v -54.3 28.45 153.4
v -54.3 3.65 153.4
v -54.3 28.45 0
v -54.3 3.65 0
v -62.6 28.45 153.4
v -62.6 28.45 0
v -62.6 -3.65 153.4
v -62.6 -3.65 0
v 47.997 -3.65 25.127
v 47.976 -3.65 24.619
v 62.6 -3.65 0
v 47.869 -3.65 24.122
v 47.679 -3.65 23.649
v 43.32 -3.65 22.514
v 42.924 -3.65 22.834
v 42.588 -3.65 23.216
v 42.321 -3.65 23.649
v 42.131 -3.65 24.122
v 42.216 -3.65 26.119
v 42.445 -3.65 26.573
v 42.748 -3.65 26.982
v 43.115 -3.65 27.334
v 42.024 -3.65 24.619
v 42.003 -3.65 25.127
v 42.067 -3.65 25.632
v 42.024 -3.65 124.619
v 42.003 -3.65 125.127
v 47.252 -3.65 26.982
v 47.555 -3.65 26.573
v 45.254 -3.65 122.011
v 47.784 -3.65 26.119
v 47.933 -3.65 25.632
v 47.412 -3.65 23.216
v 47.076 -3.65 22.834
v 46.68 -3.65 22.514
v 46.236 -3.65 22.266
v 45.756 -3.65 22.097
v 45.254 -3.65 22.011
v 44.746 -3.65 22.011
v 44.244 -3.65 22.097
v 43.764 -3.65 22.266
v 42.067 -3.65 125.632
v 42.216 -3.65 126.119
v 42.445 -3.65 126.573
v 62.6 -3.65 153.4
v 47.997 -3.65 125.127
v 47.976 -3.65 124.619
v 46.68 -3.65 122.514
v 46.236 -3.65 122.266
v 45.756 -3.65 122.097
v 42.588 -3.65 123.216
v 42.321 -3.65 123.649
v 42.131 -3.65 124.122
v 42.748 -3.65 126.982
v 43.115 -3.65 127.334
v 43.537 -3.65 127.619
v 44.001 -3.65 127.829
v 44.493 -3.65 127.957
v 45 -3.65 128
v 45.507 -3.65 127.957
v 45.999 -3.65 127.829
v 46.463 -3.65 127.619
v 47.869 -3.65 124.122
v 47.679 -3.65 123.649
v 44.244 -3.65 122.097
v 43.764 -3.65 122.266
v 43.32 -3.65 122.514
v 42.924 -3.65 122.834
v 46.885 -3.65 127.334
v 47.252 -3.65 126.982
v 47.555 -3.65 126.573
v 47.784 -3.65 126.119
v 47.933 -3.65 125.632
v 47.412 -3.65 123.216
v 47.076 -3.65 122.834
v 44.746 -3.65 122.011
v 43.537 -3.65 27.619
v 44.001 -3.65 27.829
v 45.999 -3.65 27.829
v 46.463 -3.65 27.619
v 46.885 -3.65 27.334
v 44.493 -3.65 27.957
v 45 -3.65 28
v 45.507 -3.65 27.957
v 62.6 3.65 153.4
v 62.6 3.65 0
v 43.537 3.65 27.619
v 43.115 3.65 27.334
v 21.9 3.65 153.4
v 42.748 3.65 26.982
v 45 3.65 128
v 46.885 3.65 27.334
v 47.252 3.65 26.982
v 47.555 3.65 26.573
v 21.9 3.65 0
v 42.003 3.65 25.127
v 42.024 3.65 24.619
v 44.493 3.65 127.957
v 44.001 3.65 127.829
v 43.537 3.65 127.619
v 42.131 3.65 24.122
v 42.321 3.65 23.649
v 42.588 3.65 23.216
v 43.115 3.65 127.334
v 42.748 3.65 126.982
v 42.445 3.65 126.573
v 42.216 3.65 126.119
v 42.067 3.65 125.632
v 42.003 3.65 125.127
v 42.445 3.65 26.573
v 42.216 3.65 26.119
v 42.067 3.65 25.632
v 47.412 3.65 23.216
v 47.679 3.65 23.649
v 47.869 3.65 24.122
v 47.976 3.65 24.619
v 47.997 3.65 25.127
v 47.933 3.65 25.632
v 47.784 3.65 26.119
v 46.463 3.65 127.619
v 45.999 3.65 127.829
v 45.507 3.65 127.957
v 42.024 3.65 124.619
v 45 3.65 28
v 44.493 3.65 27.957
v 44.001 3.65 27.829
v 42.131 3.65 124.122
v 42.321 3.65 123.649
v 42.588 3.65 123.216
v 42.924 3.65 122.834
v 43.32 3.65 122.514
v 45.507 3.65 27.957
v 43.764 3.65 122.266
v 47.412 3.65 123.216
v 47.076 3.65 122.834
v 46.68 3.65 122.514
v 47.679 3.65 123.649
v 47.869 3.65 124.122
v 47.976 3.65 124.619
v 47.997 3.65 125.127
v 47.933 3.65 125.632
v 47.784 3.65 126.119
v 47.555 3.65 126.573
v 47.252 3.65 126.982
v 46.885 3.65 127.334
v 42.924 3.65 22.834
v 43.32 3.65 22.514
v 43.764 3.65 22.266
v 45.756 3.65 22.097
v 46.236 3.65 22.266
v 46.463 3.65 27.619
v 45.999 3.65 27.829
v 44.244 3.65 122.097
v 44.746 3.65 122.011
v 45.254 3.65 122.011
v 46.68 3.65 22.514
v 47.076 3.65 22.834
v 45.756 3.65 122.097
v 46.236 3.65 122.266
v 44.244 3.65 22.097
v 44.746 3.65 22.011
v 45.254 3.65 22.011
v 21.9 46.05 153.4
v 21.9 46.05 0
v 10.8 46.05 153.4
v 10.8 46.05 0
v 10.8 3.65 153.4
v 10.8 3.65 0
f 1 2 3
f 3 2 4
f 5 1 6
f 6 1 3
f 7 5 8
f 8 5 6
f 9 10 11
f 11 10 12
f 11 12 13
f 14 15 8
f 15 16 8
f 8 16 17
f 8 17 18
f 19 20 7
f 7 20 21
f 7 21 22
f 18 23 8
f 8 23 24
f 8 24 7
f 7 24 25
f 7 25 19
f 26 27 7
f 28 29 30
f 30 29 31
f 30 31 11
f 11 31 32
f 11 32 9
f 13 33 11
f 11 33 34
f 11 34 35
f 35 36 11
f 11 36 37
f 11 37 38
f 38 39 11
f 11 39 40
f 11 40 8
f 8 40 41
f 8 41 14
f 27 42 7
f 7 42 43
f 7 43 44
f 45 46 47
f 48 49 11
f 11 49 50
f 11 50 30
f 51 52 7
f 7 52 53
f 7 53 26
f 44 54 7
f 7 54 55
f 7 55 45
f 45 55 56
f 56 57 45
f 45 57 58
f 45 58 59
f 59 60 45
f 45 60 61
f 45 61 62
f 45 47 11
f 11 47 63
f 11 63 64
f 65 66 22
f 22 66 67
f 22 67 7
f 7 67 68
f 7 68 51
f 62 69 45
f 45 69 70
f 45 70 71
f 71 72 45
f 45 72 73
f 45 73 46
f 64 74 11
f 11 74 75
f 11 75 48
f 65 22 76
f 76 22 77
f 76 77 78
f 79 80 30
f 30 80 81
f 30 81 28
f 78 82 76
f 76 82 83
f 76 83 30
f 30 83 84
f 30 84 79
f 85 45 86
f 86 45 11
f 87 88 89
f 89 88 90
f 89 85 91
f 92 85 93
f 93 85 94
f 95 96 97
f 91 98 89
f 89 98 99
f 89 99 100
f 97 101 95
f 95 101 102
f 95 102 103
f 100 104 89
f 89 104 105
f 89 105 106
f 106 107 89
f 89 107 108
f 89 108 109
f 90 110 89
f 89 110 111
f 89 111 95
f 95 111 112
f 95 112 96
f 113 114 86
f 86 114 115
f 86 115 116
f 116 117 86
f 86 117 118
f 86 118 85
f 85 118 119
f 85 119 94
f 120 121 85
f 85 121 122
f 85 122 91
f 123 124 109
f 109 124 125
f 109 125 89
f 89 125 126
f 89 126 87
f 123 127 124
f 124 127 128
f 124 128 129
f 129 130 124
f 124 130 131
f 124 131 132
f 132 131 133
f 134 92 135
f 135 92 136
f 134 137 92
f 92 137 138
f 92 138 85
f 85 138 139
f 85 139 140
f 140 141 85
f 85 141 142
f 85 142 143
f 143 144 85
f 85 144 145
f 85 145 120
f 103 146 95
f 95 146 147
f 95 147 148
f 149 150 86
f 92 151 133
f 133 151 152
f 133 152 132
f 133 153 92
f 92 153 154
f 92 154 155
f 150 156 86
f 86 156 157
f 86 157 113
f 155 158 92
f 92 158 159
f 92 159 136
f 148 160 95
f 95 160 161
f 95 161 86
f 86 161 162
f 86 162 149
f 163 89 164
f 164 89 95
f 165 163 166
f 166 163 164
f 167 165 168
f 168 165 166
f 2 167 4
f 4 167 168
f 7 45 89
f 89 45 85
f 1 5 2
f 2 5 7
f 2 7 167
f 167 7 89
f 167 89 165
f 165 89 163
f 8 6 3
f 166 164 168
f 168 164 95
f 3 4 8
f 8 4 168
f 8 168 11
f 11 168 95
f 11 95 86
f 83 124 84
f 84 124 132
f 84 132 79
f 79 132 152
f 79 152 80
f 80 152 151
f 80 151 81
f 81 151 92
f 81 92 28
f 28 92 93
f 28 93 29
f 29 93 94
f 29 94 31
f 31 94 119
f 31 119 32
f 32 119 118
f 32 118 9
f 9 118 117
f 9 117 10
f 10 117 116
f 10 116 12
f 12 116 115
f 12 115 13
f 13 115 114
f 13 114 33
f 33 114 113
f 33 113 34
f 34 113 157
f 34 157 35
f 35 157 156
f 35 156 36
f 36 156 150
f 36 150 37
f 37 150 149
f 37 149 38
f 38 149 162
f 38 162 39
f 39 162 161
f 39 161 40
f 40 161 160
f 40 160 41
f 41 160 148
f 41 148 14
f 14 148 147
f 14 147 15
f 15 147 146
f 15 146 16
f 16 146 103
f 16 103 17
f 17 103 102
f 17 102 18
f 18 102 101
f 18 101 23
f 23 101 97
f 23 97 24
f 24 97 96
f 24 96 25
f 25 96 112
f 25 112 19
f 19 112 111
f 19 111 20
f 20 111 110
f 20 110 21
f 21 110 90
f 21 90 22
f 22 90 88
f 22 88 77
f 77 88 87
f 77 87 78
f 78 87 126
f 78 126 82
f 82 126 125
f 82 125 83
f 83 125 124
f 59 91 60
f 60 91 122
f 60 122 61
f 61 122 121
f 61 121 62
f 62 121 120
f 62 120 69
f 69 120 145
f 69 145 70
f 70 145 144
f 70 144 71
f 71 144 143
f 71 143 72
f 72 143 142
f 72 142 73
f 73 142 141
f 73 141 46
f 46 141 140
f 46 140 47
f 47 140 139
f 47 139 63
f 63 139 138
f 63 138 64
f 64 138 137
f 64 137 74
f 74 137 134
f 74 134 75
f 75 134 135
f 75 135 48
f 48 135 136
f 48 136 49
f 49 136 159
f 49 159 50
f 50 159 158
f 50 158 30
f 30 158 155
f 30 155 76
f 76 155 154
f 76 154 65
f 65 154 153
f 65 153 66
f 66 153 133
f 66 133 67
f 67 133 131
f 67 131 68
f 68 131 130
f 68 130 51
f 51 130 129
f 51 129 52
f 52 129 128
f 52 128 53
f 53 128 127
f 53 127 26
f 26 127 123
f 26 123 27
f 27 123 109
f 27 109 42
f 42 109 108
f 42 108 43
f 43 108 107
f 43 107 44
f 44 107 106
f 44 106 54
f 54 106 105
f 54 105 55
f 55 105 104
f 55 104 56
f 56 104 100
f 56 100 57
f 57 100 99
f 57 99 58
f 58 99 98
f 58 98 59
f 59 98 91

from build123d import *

# Parameters (mm, degrees)
SKETCH1_W           = 8.3
SKETCH1_H           = 24.8
SKETCH1_W_2         = 125.2
SKETCH1_H_2         = 7.3
SKETCH1_W_3         = 11.1
SKETCH1_H_3         = 42.4
BOSS_EXTRUDE1_DEPTH = 153.4
SKETCH2_R           = 3
CUT_EXTRUDE1_DEPTH  = 153.4
LPATTERN1_COUNT     = 2
LPATTERN1_PITCH     = 100


with BuildPart() as part:
    # Sketch1 → Boss-Extrude1 (new body)
    with BuildSketch(Plane.XY):
        with Locations((-58.45, 16.05)):
            Rectangle(SKETCH1_W, SKETCH1_H)
        Rectangle(SKETCH1_W_2, SKETCH1_H_2)
        with Locations((16.35, 24.85)):
            Rectangle(SKETCH1_W_3, SKETCH1_H_3)
    extrude(amount=BOSS_EXTRUDE1_DEPTH)

    # Sketch2 → Cut-Extrude1 (cut)
    with BuildSketch(Plane(origin=(0, 3.65, 0), x_dir=(1, 0, 0), z_dir=(0, 1, 0))):
        with Locations(Location((45, -25, 0), (0, 0, 270))):
            Circle(SKETCH2_R)
    cut_extrude1 = extrude(amount=-CUT_EXTRUDE1_DEPTH, mode=Mode.SUBTRACT)

    # LPattern1: Cut-Extrude1 ×2
    with Locations(*[(0, 0, i * LPATTERN1_PITCH) for i in range(1, LPATTERN1_COUNT)]):
        add(cut_extrude1, mode=Mode.SUBTRACT)


solid = part.part
